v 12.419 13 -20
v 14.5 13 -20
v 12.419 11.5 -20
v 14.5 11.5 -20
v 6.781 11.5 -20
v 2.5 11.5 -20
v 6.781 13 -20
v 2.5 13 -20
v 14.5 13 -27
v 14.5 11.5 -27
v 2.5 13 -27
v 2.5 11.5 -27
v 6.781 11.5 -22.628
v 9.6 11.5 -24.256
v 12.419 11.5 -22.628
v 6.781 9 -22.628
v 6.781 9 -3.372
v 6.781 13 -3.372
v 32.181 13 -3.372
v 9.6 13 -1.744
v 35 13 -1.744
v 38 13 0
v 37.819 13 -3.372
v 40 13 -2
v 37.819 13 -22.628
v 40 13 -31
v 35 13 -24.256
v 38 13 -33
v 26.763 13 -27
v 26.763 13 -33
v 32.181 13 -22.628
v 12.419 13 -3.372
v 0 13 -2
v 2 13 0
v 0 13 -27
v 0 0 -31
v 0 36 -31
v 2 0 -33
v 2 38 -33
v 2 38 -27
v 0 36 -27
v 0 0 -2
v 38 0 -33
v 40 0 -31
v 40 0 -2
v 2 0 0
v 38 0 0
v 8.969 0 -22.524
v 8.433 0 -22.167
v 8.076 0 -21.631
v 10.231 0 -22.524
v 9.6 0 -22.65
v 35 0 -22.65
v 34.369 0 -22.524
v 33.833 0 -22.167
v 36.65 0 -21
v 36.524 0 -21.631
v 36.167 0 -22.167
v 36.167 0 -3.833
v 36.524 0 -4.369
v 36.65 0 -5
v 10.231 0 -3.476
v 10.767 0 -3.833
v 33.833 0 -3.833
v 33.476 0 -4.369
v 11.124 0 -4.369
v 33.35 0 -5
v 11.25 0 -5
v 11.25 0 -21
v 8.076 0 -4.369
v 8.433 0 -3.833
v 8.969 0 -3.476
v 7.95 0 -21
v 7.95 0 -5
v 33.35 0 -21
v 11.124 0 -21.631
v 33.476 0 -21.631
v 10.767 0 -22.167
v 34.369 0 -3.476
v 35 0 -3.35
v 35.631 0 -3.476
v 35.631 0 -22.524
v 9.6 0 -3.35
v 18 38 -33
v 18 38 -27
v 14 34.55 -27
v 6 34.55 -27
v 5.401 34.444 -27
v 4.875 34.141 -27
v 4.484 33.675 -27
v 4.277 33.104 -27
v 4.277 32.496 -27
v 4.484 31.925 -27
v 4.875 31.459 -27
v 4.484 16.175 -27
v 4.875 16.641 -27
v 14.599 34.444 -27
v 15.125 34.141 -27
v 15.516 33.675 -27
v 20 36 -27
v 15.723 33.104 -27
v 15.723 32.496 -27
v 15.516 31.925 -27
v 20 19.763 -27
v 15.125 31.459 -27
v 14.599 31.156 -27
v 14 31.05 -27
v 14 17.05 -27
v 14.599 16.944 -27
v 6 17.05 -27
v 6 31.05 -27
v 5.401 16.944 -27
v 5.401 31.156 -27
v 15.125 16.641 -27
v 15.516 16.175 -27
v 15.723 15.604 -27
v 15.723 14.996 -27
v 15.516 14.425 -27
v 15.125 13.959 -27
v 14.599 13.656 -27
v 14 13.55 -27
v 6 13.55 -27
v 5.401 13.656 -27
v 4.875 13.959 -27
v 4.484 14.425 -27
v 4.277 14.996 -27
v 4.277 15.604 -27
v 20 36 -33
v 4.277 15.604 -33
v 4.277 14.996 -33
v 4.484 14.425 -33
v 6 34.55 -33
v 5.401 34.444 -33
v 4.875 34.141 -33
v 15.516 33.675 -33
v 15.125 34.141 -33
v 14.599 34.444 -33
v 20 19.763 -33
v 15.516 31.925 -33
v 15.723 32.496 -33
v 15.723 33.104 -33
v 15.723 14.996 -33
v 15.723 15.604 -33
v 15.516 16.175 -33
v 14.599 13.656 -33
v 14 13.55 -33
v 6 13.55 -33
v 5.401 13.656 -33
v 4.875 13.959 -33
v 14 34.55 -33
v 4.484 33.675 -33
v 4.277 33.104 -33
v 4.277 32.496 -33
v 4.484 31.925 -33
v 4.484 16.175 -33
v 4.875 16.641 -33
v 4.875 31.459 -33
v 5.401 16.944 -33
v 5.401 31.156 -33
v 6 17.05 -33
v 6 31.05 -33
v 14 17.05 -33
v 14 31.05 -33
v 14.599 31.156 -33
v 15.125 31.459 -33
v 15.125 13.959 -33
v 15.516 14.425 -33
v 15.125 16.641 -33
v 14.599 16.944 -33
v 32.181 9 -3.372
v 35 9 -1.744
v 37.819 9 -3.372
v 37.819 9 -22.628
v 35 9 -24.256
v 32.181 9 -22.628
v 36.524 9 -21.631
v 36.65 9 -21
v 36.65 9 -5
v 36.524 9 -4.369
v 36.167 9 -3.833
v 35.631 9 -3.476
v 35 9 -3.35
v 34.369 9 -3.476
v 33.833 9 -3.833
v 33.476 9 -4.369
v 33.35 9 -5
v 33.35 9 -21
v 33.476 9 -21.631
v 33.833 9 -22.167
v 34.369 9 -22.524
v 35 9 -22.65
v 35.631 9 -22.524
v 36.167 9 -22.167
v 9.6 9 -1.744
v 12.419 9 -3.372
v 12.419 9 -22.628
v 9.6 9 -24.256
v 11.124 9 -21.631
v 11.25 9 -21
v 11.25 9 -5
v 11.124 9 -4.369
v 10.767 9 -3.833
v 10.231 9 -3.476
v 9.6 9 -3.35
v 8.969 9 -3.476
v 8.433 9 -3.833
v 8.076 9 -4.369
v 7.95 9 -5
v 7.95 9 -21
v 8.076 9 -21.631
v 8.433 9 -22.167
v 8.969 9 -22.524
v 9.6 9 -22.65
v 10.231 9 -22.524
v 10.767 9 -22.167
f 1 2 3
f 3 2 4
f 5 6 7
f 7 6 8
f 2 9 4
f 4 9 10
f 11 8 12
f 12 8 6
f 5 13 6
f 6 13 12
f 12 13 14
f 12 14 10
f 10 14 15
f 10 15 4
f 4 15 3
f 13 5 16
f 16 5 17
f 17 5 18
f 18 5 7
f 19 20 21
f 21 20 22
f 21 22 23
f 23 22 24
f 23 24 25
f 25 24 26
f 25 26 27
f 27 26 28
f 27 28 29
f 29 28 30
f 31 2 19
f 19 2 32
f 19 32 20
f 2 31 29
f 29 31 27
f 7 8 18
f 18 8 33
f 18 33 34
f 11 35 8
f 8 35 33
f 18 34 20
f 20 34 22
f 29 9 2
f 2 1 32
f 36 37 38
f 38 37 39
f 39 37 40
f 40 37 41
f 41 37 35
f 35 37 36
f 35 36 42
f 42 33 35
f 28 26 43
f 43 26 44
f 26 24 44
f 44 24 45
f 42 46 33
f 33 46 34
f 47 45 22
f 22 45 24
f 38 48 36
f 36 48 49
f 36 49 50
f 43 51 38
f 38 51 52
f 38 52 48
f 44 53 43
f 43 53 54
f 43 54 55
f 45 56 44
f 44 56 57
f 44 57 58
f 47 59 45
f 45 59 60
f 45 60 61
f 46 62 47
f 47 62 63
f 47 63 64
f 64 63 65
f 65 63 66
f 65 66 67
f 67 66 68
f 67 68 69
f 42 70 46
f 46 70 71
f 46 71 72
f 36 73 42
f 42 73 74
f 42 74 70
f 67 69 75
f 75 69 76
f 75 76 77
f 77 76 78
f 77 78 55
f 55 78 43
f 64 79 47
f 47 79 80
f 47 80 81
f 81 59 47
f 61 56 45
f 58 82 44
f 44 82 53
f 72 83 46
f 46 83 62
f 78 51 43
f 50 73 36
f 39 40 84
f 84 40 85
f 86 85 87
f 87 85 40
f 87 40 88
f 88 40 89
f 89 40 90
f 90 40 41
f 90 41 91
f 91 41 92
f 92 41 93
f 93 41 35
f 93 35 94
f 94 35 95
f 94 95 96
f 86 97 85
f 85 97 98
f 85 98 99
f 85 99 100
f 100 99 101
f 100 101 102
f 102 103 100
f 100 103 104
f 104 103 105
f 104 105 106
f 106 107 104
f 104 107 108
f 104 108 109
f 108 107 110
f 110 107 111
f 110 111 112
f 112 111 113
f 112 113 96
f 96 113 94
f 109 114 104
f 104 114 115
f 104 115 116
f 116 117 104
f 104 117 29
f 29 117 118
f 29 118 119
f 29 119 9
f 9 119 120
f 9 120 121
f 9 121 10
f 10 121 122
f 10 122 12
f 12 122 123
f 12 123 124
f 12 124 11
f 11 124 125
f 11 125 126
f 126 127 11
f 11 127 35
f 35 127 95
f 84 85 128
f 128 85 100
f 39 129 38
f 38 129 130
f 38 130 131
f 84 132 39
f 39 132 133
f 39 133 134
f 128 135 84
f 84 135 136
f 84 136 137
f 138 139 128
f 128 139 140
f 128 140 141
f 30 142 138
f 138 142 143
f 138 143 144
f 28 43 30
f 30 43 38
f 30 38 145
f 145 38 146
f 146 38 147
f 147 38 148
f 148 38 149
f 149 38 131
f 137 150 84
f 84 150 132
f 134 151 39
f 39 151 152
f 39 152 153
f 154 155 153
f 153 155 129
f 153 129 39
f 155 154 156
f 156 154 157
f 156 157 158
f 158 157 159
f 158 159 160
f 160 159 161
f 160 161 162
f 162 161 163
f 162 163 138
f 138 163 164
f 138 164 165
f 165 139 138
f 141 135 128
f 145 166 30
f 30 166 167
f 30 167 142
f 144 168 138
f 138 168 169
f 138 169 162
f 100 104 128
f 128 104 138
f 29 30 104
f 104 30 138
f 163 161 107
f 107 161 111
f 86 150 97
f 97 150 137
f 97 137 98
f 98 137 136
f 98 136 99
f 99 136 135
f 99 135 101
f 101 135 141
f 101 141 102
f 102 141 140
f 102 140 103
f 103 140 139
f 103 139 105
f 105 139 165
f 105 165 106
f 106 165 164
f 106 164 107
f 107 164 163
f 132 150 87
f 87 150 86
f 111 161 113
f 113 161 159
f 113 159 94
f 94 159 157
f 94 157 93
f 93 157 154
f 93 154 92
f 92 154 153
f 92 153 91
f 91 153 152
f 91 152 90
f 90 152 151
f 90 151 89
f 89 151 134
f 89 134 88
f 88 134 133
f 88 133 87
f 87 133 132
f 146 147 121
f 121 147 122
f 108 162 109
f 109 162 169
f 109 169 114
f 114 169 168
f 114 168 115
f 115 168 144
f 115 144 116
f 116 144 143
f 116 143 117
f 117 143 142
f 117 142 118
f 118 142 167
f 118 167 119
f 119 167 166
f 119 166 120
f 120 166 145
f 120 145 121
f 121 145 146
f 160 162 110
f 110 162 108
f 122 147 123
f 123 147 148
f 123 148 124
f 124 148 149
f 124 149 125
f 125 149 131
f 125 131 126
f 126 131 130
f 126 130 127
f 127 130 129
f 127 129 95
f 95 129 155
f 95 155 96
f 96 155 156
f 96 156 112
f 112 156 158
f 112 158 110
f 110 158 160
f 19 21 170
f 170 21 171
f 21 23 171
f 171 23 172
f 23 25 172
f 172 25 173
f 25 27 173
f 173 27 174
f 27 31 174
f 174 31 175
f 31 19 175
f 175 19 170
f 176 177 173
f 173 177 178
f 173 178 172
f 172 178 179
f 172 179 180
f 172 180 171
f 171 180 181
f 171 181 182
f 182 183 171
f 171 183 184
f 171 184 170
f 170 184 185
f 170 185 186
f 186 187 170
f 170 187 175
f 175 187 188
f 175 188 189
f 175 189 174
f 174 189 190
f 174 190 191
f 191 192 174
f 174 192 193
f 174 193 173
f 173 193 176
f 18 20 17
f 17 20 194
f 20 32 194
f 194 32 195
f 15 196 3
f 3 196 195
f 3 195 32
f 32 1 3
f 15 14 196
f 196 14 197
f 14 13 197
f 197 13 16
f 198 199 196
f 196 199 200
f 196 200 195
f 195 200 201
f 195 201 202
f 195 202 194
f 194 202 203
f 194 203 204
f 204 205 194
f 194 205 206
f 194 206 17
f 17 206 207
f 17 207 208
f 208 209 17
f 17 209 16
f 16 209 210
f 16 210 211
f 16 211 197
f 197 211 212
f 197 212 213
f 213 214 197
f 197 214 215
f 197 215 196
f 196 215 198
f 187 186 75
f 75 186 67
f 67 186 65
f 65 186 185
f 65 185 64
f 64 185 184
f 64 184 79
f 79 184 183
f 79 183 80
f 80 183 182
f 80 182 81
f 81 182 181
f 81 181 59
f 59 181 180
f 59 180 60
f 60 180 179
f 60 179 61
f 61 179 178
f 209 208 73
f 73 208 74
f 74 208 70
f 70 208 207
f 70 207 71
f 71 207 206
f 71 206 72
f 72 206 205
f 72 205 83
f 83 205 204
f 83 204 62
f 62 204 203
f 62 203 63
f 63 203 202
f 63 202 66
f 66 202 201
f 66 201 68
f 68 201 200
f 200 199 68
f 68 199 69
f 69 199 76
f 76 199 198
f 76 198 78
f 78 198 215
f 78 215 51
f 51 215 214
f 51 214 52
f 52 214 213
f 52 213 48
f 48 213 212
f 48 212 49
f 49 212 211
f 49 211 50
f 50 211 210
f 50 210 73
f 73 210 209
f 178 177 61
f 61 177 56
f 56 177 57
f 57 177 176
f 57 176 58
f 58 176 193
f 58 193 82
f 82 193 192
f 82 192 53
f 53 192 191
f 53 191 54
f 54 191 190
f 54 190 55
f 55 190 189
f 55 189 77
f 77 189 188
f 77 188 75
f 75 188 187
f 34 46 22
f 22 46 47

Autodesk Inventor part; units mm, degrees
ref_plane "YZ Plane" through (0, 0, 0) normal (1, 0, 0) x (0, 1, 0)
ref_plane "XZ Plane" through (0, 0, 0) normal (0, 1, 0) x (-1, 0, 0)
ref_plane "XY Plane" through (0, 0, 0) normal (0, 0, 1) x (1, 0, 0)
sketch "Sketch1" plane through (0, 0, 0) normal (1, 0, 0) x (0, 1, 0)
  line L0 (0, 0) -> (13, 0)
  line L1 (13, 0) -> (13, -27)
  line L2 (13, -27) -> (0, -27)
  line L3 (0, -27) -> (0, 0)
  dimension "d0" = 13
  dimension "d1" = 27
extrude "Extrusion1" add sketch "Sketch1" along normal blind 40
sketch "Sketch2" plane through (40, 0, 0) normal (1, 0, 0) x (0, 0, -1)
  line L0 (27, 0) -> (27, 13) projected
  line L1 (27, 0) -> (33, 0)
  line L2 (33, 0) -> (33, 38)
  line L3 (33, 38) -> (27, 38)
  line L4 (27, 38) -> (27, 0)
  point P0 (0, 0)
  dimension "d4" = 6
  dimension "d5" = 38
extrude "Extrusion2" add sketch "Sketch2" against normal blind 40
sketch "Sketch3" plane through (0, 13, 0) normal (0, 1, 0) x (1, 0, 0)
  line L0 (40, 27) -> (40, 0) construction
  line L1 (40, 0) -> (35, 0) construction
  line L2 (0, 0) -> (40, 0) construction
  line L3 (35, 0) -> (35, 5) construction
  line L4 (35, 5) -> (35, 21) construction
  line L5 (35, 5) -> (9.6, 5) construction
  line L6 (35, 5) -> (35, 21) construction
  line L7 (36.65, 5) -> (36.65, 21)
  line L8 (33.35, 21) -> (33.35, 5)
  arc A0 (33.35, 5) -> (36.65, 5) centre (35, 5) ccw
  arc A1 (36.65, 21) -> (33.35, 21) centre (35, 21) ccw
  line L9 (9.6, 0) -> (9.6, 5) construction
  line L10 (9.6, 5) -> (9.6, 21) construction
  line L11 (9.6, 5) -> (-15.8, 5) construction
  line L12 (9.6, 5) -> (9.6, 21) construction
  line L13 (11.25, 5) -> (11.25, 21)
  line L14 (7.95, 21) -> (7.95, 5)
  arc A2 (7.95, 5) -> (11.25, 5) centre (9.6, 5) ccw
  arc A3 (11.25, 21) -> (7.95, 21) centre (9.6, 21) ccw
  point P0 (35, 13)
  point P1 (9.6, 13)
  dimension "d8" = 5
  dimension "d9" = 5
  dimension "d10" = 16
  dimension "d11" = 25.4
  dimension "d12" = 3.3
  dimension "d13" = 5
  dimension "d14" = 16
  dimension "d15" = 25.4
  dimension "d16" = 3.3
extrude "Extrusion3" cut sketch "Sketch3" against normal blind 40
sketch "Sketch4" plane through (0, 13, 0) normal (0, 1, 0) x (1, 0, 0)
  point P0 (0, 0)
sketch "Sketch5" plane through (0, 13, 0) normal (0, 1, 0) x (1, 0, 0)
  arc A0 (33.35, 5) -> (36.65, 5) centre (35, 5) ccw projected
  line L0 (35, 5) -> (32.1806, 5) construction
  line L1 (35, 5) -> (37.8194, 5) construction
  line L2 (37.8194, 6.6278) -> (37.8194, 3.3722)
  line L3 (37.8194, 3.3722) -> (35, 1.7444)
  line L4 (35, 1.7444) -> (32.1806, 3.3722)
  line L5 (32.1806, 3.3722) -> (32.1806, 6.6278)
  arc A1 (36.65, 21) -> (33.35, 21) centre (35, 21) ccw projected
  line L6 (35, 21) -> (32.1806, 21) construction
  line L7 (32.1806, 22.6278) -> (35, 24.2556)
  line L8 (35, 24.2556) -> (37.8194, 22.6278)
  line L9 (37.8194, 22.6278) -> (37.8194, 19.3722)
  line L10 (32.1806, 19.3722) -> (32.1806, 22.6278)
  line L11 (32.1806, 19.3722) -> (32.1806, 6.6278)
  line L12 (33.35, 5) -> (33.35, 21) projected
  line L13 (36.65, 5) -> (36.65, 21) projected
  line L14 (37.8194, 19.3722) -> (37.8194, 6.6278)
  arc A2 (7.95, 5) -> (11.25, 5) centre (9.6, 5) ccw projected
  line L15 (9.6, 5) -> (6.7806, 5) construction
  line L16 (9.6, 5) -> (12.4194, 5) construction
  line L17 (12.4194, 6.6278) -> (12.4194, 3.3722)
  line L18 (12.4194, 3.3722) -> (9.6, 1.7444)
  line L19 (9.6, 1.7444) -> (6.7806, 3.3722)
  line L20 (6.7806, 3.3722) -> (6.7806, 6.6278)
  line L21 (9.6, 21) -> (6.7806, 21) construction
  line L22 (6.7806, 22.6278) -> (9.6, 24.2556)
  line L23 (9.6, 24.2556) -> (12.4194, 22.6278)
  line L24 (12.4194, 22.6278) -> (12.4194, 19.3722)
  line L25 (6.7806, 19.3722) -> (6.7806, 22.6278)
  line L26 (6.7806, 19.3722) -> (6.7806, 6.6278)
  line L27 (12.4194, 19.3722) -> (12.4194, 6.6278)
  point P0 (0, 0)
  dimension "d19" = 2.8194
  dimension "d20" = 2.8194
  dimension "d21" = 2.8194
  dimension "d23" = 2.8194
  dimension "d24" = 2.8194
  dimension "d25" = 2.8194
extrude "Extrusion4" cut sketch "Sketch5" against normal blind 4 contours L12 A1 L13 A0 | L2 L3 L4 L5 L11 L10 L7 L8 L9 L14 | L17 L18 L19 L20 L26 L25 L22 L23 L24 L27
sketch "Sketch6" plane through (40, 13, -27) normal (0, 0, 1) x (1, 0, 0)
  line L0 (-40, 0) -> (0, 0) construction
  line L1 (-40, 0) -> (-40, 2.3) construction
  line L2 (-40, 25) -> (-40, -13) construction
  line L3 (-40, 2.3) -> (-6.5941, 2.3) construction
  line L4 (-40, 2.3) -> (-40, 19.8) construction
  line L5 (-40, 19.8) -> (-7.5372, 19.8) construction
  line L6 (-40, 2.3) -> (-34, 2.3) construction
  line L7 (-34, 2.3) -> (-34, 19.8) construction
  line L8 (-34, 19.8) -> (-26, 19.8) construction
  line L9 (-34, 2.3) -> (-26, 2.3) construction
  line L10 (-34, 19.8) -> (-26, 19.8) construction
  line L11 (-34, 18.05) -> (-26, 18.05)
  line L12 (-26, 21.55) -> (-34, 21.55)
  arc A0 (-34, 21.55) -> (-34, 18.05) centre (-34, 19.8) ccw
  arc A1 (-26, 18.05) -> (-26, 21.55) centre (-26, 19.8) ccw
  line L13 (-34, 2.3) -> (-26, 2.3) construction
  line L14 (-34, 0.55) -> (-26, 0.55)
  line L15 (-26, 4.05) -> (-34, 4.05)
  arc A2 (-34, 4.05) -> (-34, 0.55) centre (-34, 2.3) ccw
  arc A3 (-26, 0.55) -> (-26, 4.05) centre (-26, 2.3) ccw
  point P0 (-30, 19.8)
  point P1 (-30, 2.3)
  dimension "d28" = 2.3
  dimension "d29" = 17.5
  dimension "d30" = 6
  dimension "d31" = 8
  dimension "d32" = 8
  dimension "d33" = 3.5
  dimension "d34" = 3.5
extrude "Extrusion5" cut sketch "Sketch6" against normal blind 35.6875
sketch "Sketch7" plane through (40, 13, -27) normal (0, 0, 1) x (1, 0, 0)
  line L0 (0, 25) -> (0, 0) projected
  line L1 (-40, 0) -> (0, 0) projected
  line L2 (0, 25) -> (-20, 25)
  line L3 (-20, 25) -> (-20, 0)
  line L4 (-20, 0) -> (0, 0)
  line L5 (0, 0) -> (0, 25)
  point P0 (-40, -13)
extrude "Extrusion6" cut sketch "Sketch7" against normal blind 45.275
chamfer "Chamfer1" distance 6.7625 angle 45 1 edges at (20, 13, -30)
chamfer "Chamfer2" distance 2 angle 45 1 edges at (20, 38, -30)
chamfer "Chamfer3" distance 2 angle 45 1 edges at (0, 38, -30)
chamfer "Chamfer4" distance 2 angle 45 4 edges at (40, 6.5, 0) (0, 6.5, 0) (40, 6.5, -33) (0, 18, -33)
sketch "Sketch8" plane through (0, 13, -27) normal (0, 1, 0) x (1, 0, 0)
  line L0 (0, 0) -> (26.7625, 0) construction
  line L1 (0, 0) -> (2.5, 0) construction
  line L2 (2.5, 0) -> (14.5, 0)
  line L3 (14.5, 0) -> (14.5, -7)
  line L4 (14.5, -7) -> (2.5, -7)
  line L5 (2.5, -7) -> (2.5, 0)
  point P0 (0, -27)
  dimension "d53" = 2.5
  dimension "d54" = 12
  dimension "d55" = 7
extrude "Extrusion7" cut sketch "Sketch8" against normal blind 1.5
properties part number "Motor Mount"
